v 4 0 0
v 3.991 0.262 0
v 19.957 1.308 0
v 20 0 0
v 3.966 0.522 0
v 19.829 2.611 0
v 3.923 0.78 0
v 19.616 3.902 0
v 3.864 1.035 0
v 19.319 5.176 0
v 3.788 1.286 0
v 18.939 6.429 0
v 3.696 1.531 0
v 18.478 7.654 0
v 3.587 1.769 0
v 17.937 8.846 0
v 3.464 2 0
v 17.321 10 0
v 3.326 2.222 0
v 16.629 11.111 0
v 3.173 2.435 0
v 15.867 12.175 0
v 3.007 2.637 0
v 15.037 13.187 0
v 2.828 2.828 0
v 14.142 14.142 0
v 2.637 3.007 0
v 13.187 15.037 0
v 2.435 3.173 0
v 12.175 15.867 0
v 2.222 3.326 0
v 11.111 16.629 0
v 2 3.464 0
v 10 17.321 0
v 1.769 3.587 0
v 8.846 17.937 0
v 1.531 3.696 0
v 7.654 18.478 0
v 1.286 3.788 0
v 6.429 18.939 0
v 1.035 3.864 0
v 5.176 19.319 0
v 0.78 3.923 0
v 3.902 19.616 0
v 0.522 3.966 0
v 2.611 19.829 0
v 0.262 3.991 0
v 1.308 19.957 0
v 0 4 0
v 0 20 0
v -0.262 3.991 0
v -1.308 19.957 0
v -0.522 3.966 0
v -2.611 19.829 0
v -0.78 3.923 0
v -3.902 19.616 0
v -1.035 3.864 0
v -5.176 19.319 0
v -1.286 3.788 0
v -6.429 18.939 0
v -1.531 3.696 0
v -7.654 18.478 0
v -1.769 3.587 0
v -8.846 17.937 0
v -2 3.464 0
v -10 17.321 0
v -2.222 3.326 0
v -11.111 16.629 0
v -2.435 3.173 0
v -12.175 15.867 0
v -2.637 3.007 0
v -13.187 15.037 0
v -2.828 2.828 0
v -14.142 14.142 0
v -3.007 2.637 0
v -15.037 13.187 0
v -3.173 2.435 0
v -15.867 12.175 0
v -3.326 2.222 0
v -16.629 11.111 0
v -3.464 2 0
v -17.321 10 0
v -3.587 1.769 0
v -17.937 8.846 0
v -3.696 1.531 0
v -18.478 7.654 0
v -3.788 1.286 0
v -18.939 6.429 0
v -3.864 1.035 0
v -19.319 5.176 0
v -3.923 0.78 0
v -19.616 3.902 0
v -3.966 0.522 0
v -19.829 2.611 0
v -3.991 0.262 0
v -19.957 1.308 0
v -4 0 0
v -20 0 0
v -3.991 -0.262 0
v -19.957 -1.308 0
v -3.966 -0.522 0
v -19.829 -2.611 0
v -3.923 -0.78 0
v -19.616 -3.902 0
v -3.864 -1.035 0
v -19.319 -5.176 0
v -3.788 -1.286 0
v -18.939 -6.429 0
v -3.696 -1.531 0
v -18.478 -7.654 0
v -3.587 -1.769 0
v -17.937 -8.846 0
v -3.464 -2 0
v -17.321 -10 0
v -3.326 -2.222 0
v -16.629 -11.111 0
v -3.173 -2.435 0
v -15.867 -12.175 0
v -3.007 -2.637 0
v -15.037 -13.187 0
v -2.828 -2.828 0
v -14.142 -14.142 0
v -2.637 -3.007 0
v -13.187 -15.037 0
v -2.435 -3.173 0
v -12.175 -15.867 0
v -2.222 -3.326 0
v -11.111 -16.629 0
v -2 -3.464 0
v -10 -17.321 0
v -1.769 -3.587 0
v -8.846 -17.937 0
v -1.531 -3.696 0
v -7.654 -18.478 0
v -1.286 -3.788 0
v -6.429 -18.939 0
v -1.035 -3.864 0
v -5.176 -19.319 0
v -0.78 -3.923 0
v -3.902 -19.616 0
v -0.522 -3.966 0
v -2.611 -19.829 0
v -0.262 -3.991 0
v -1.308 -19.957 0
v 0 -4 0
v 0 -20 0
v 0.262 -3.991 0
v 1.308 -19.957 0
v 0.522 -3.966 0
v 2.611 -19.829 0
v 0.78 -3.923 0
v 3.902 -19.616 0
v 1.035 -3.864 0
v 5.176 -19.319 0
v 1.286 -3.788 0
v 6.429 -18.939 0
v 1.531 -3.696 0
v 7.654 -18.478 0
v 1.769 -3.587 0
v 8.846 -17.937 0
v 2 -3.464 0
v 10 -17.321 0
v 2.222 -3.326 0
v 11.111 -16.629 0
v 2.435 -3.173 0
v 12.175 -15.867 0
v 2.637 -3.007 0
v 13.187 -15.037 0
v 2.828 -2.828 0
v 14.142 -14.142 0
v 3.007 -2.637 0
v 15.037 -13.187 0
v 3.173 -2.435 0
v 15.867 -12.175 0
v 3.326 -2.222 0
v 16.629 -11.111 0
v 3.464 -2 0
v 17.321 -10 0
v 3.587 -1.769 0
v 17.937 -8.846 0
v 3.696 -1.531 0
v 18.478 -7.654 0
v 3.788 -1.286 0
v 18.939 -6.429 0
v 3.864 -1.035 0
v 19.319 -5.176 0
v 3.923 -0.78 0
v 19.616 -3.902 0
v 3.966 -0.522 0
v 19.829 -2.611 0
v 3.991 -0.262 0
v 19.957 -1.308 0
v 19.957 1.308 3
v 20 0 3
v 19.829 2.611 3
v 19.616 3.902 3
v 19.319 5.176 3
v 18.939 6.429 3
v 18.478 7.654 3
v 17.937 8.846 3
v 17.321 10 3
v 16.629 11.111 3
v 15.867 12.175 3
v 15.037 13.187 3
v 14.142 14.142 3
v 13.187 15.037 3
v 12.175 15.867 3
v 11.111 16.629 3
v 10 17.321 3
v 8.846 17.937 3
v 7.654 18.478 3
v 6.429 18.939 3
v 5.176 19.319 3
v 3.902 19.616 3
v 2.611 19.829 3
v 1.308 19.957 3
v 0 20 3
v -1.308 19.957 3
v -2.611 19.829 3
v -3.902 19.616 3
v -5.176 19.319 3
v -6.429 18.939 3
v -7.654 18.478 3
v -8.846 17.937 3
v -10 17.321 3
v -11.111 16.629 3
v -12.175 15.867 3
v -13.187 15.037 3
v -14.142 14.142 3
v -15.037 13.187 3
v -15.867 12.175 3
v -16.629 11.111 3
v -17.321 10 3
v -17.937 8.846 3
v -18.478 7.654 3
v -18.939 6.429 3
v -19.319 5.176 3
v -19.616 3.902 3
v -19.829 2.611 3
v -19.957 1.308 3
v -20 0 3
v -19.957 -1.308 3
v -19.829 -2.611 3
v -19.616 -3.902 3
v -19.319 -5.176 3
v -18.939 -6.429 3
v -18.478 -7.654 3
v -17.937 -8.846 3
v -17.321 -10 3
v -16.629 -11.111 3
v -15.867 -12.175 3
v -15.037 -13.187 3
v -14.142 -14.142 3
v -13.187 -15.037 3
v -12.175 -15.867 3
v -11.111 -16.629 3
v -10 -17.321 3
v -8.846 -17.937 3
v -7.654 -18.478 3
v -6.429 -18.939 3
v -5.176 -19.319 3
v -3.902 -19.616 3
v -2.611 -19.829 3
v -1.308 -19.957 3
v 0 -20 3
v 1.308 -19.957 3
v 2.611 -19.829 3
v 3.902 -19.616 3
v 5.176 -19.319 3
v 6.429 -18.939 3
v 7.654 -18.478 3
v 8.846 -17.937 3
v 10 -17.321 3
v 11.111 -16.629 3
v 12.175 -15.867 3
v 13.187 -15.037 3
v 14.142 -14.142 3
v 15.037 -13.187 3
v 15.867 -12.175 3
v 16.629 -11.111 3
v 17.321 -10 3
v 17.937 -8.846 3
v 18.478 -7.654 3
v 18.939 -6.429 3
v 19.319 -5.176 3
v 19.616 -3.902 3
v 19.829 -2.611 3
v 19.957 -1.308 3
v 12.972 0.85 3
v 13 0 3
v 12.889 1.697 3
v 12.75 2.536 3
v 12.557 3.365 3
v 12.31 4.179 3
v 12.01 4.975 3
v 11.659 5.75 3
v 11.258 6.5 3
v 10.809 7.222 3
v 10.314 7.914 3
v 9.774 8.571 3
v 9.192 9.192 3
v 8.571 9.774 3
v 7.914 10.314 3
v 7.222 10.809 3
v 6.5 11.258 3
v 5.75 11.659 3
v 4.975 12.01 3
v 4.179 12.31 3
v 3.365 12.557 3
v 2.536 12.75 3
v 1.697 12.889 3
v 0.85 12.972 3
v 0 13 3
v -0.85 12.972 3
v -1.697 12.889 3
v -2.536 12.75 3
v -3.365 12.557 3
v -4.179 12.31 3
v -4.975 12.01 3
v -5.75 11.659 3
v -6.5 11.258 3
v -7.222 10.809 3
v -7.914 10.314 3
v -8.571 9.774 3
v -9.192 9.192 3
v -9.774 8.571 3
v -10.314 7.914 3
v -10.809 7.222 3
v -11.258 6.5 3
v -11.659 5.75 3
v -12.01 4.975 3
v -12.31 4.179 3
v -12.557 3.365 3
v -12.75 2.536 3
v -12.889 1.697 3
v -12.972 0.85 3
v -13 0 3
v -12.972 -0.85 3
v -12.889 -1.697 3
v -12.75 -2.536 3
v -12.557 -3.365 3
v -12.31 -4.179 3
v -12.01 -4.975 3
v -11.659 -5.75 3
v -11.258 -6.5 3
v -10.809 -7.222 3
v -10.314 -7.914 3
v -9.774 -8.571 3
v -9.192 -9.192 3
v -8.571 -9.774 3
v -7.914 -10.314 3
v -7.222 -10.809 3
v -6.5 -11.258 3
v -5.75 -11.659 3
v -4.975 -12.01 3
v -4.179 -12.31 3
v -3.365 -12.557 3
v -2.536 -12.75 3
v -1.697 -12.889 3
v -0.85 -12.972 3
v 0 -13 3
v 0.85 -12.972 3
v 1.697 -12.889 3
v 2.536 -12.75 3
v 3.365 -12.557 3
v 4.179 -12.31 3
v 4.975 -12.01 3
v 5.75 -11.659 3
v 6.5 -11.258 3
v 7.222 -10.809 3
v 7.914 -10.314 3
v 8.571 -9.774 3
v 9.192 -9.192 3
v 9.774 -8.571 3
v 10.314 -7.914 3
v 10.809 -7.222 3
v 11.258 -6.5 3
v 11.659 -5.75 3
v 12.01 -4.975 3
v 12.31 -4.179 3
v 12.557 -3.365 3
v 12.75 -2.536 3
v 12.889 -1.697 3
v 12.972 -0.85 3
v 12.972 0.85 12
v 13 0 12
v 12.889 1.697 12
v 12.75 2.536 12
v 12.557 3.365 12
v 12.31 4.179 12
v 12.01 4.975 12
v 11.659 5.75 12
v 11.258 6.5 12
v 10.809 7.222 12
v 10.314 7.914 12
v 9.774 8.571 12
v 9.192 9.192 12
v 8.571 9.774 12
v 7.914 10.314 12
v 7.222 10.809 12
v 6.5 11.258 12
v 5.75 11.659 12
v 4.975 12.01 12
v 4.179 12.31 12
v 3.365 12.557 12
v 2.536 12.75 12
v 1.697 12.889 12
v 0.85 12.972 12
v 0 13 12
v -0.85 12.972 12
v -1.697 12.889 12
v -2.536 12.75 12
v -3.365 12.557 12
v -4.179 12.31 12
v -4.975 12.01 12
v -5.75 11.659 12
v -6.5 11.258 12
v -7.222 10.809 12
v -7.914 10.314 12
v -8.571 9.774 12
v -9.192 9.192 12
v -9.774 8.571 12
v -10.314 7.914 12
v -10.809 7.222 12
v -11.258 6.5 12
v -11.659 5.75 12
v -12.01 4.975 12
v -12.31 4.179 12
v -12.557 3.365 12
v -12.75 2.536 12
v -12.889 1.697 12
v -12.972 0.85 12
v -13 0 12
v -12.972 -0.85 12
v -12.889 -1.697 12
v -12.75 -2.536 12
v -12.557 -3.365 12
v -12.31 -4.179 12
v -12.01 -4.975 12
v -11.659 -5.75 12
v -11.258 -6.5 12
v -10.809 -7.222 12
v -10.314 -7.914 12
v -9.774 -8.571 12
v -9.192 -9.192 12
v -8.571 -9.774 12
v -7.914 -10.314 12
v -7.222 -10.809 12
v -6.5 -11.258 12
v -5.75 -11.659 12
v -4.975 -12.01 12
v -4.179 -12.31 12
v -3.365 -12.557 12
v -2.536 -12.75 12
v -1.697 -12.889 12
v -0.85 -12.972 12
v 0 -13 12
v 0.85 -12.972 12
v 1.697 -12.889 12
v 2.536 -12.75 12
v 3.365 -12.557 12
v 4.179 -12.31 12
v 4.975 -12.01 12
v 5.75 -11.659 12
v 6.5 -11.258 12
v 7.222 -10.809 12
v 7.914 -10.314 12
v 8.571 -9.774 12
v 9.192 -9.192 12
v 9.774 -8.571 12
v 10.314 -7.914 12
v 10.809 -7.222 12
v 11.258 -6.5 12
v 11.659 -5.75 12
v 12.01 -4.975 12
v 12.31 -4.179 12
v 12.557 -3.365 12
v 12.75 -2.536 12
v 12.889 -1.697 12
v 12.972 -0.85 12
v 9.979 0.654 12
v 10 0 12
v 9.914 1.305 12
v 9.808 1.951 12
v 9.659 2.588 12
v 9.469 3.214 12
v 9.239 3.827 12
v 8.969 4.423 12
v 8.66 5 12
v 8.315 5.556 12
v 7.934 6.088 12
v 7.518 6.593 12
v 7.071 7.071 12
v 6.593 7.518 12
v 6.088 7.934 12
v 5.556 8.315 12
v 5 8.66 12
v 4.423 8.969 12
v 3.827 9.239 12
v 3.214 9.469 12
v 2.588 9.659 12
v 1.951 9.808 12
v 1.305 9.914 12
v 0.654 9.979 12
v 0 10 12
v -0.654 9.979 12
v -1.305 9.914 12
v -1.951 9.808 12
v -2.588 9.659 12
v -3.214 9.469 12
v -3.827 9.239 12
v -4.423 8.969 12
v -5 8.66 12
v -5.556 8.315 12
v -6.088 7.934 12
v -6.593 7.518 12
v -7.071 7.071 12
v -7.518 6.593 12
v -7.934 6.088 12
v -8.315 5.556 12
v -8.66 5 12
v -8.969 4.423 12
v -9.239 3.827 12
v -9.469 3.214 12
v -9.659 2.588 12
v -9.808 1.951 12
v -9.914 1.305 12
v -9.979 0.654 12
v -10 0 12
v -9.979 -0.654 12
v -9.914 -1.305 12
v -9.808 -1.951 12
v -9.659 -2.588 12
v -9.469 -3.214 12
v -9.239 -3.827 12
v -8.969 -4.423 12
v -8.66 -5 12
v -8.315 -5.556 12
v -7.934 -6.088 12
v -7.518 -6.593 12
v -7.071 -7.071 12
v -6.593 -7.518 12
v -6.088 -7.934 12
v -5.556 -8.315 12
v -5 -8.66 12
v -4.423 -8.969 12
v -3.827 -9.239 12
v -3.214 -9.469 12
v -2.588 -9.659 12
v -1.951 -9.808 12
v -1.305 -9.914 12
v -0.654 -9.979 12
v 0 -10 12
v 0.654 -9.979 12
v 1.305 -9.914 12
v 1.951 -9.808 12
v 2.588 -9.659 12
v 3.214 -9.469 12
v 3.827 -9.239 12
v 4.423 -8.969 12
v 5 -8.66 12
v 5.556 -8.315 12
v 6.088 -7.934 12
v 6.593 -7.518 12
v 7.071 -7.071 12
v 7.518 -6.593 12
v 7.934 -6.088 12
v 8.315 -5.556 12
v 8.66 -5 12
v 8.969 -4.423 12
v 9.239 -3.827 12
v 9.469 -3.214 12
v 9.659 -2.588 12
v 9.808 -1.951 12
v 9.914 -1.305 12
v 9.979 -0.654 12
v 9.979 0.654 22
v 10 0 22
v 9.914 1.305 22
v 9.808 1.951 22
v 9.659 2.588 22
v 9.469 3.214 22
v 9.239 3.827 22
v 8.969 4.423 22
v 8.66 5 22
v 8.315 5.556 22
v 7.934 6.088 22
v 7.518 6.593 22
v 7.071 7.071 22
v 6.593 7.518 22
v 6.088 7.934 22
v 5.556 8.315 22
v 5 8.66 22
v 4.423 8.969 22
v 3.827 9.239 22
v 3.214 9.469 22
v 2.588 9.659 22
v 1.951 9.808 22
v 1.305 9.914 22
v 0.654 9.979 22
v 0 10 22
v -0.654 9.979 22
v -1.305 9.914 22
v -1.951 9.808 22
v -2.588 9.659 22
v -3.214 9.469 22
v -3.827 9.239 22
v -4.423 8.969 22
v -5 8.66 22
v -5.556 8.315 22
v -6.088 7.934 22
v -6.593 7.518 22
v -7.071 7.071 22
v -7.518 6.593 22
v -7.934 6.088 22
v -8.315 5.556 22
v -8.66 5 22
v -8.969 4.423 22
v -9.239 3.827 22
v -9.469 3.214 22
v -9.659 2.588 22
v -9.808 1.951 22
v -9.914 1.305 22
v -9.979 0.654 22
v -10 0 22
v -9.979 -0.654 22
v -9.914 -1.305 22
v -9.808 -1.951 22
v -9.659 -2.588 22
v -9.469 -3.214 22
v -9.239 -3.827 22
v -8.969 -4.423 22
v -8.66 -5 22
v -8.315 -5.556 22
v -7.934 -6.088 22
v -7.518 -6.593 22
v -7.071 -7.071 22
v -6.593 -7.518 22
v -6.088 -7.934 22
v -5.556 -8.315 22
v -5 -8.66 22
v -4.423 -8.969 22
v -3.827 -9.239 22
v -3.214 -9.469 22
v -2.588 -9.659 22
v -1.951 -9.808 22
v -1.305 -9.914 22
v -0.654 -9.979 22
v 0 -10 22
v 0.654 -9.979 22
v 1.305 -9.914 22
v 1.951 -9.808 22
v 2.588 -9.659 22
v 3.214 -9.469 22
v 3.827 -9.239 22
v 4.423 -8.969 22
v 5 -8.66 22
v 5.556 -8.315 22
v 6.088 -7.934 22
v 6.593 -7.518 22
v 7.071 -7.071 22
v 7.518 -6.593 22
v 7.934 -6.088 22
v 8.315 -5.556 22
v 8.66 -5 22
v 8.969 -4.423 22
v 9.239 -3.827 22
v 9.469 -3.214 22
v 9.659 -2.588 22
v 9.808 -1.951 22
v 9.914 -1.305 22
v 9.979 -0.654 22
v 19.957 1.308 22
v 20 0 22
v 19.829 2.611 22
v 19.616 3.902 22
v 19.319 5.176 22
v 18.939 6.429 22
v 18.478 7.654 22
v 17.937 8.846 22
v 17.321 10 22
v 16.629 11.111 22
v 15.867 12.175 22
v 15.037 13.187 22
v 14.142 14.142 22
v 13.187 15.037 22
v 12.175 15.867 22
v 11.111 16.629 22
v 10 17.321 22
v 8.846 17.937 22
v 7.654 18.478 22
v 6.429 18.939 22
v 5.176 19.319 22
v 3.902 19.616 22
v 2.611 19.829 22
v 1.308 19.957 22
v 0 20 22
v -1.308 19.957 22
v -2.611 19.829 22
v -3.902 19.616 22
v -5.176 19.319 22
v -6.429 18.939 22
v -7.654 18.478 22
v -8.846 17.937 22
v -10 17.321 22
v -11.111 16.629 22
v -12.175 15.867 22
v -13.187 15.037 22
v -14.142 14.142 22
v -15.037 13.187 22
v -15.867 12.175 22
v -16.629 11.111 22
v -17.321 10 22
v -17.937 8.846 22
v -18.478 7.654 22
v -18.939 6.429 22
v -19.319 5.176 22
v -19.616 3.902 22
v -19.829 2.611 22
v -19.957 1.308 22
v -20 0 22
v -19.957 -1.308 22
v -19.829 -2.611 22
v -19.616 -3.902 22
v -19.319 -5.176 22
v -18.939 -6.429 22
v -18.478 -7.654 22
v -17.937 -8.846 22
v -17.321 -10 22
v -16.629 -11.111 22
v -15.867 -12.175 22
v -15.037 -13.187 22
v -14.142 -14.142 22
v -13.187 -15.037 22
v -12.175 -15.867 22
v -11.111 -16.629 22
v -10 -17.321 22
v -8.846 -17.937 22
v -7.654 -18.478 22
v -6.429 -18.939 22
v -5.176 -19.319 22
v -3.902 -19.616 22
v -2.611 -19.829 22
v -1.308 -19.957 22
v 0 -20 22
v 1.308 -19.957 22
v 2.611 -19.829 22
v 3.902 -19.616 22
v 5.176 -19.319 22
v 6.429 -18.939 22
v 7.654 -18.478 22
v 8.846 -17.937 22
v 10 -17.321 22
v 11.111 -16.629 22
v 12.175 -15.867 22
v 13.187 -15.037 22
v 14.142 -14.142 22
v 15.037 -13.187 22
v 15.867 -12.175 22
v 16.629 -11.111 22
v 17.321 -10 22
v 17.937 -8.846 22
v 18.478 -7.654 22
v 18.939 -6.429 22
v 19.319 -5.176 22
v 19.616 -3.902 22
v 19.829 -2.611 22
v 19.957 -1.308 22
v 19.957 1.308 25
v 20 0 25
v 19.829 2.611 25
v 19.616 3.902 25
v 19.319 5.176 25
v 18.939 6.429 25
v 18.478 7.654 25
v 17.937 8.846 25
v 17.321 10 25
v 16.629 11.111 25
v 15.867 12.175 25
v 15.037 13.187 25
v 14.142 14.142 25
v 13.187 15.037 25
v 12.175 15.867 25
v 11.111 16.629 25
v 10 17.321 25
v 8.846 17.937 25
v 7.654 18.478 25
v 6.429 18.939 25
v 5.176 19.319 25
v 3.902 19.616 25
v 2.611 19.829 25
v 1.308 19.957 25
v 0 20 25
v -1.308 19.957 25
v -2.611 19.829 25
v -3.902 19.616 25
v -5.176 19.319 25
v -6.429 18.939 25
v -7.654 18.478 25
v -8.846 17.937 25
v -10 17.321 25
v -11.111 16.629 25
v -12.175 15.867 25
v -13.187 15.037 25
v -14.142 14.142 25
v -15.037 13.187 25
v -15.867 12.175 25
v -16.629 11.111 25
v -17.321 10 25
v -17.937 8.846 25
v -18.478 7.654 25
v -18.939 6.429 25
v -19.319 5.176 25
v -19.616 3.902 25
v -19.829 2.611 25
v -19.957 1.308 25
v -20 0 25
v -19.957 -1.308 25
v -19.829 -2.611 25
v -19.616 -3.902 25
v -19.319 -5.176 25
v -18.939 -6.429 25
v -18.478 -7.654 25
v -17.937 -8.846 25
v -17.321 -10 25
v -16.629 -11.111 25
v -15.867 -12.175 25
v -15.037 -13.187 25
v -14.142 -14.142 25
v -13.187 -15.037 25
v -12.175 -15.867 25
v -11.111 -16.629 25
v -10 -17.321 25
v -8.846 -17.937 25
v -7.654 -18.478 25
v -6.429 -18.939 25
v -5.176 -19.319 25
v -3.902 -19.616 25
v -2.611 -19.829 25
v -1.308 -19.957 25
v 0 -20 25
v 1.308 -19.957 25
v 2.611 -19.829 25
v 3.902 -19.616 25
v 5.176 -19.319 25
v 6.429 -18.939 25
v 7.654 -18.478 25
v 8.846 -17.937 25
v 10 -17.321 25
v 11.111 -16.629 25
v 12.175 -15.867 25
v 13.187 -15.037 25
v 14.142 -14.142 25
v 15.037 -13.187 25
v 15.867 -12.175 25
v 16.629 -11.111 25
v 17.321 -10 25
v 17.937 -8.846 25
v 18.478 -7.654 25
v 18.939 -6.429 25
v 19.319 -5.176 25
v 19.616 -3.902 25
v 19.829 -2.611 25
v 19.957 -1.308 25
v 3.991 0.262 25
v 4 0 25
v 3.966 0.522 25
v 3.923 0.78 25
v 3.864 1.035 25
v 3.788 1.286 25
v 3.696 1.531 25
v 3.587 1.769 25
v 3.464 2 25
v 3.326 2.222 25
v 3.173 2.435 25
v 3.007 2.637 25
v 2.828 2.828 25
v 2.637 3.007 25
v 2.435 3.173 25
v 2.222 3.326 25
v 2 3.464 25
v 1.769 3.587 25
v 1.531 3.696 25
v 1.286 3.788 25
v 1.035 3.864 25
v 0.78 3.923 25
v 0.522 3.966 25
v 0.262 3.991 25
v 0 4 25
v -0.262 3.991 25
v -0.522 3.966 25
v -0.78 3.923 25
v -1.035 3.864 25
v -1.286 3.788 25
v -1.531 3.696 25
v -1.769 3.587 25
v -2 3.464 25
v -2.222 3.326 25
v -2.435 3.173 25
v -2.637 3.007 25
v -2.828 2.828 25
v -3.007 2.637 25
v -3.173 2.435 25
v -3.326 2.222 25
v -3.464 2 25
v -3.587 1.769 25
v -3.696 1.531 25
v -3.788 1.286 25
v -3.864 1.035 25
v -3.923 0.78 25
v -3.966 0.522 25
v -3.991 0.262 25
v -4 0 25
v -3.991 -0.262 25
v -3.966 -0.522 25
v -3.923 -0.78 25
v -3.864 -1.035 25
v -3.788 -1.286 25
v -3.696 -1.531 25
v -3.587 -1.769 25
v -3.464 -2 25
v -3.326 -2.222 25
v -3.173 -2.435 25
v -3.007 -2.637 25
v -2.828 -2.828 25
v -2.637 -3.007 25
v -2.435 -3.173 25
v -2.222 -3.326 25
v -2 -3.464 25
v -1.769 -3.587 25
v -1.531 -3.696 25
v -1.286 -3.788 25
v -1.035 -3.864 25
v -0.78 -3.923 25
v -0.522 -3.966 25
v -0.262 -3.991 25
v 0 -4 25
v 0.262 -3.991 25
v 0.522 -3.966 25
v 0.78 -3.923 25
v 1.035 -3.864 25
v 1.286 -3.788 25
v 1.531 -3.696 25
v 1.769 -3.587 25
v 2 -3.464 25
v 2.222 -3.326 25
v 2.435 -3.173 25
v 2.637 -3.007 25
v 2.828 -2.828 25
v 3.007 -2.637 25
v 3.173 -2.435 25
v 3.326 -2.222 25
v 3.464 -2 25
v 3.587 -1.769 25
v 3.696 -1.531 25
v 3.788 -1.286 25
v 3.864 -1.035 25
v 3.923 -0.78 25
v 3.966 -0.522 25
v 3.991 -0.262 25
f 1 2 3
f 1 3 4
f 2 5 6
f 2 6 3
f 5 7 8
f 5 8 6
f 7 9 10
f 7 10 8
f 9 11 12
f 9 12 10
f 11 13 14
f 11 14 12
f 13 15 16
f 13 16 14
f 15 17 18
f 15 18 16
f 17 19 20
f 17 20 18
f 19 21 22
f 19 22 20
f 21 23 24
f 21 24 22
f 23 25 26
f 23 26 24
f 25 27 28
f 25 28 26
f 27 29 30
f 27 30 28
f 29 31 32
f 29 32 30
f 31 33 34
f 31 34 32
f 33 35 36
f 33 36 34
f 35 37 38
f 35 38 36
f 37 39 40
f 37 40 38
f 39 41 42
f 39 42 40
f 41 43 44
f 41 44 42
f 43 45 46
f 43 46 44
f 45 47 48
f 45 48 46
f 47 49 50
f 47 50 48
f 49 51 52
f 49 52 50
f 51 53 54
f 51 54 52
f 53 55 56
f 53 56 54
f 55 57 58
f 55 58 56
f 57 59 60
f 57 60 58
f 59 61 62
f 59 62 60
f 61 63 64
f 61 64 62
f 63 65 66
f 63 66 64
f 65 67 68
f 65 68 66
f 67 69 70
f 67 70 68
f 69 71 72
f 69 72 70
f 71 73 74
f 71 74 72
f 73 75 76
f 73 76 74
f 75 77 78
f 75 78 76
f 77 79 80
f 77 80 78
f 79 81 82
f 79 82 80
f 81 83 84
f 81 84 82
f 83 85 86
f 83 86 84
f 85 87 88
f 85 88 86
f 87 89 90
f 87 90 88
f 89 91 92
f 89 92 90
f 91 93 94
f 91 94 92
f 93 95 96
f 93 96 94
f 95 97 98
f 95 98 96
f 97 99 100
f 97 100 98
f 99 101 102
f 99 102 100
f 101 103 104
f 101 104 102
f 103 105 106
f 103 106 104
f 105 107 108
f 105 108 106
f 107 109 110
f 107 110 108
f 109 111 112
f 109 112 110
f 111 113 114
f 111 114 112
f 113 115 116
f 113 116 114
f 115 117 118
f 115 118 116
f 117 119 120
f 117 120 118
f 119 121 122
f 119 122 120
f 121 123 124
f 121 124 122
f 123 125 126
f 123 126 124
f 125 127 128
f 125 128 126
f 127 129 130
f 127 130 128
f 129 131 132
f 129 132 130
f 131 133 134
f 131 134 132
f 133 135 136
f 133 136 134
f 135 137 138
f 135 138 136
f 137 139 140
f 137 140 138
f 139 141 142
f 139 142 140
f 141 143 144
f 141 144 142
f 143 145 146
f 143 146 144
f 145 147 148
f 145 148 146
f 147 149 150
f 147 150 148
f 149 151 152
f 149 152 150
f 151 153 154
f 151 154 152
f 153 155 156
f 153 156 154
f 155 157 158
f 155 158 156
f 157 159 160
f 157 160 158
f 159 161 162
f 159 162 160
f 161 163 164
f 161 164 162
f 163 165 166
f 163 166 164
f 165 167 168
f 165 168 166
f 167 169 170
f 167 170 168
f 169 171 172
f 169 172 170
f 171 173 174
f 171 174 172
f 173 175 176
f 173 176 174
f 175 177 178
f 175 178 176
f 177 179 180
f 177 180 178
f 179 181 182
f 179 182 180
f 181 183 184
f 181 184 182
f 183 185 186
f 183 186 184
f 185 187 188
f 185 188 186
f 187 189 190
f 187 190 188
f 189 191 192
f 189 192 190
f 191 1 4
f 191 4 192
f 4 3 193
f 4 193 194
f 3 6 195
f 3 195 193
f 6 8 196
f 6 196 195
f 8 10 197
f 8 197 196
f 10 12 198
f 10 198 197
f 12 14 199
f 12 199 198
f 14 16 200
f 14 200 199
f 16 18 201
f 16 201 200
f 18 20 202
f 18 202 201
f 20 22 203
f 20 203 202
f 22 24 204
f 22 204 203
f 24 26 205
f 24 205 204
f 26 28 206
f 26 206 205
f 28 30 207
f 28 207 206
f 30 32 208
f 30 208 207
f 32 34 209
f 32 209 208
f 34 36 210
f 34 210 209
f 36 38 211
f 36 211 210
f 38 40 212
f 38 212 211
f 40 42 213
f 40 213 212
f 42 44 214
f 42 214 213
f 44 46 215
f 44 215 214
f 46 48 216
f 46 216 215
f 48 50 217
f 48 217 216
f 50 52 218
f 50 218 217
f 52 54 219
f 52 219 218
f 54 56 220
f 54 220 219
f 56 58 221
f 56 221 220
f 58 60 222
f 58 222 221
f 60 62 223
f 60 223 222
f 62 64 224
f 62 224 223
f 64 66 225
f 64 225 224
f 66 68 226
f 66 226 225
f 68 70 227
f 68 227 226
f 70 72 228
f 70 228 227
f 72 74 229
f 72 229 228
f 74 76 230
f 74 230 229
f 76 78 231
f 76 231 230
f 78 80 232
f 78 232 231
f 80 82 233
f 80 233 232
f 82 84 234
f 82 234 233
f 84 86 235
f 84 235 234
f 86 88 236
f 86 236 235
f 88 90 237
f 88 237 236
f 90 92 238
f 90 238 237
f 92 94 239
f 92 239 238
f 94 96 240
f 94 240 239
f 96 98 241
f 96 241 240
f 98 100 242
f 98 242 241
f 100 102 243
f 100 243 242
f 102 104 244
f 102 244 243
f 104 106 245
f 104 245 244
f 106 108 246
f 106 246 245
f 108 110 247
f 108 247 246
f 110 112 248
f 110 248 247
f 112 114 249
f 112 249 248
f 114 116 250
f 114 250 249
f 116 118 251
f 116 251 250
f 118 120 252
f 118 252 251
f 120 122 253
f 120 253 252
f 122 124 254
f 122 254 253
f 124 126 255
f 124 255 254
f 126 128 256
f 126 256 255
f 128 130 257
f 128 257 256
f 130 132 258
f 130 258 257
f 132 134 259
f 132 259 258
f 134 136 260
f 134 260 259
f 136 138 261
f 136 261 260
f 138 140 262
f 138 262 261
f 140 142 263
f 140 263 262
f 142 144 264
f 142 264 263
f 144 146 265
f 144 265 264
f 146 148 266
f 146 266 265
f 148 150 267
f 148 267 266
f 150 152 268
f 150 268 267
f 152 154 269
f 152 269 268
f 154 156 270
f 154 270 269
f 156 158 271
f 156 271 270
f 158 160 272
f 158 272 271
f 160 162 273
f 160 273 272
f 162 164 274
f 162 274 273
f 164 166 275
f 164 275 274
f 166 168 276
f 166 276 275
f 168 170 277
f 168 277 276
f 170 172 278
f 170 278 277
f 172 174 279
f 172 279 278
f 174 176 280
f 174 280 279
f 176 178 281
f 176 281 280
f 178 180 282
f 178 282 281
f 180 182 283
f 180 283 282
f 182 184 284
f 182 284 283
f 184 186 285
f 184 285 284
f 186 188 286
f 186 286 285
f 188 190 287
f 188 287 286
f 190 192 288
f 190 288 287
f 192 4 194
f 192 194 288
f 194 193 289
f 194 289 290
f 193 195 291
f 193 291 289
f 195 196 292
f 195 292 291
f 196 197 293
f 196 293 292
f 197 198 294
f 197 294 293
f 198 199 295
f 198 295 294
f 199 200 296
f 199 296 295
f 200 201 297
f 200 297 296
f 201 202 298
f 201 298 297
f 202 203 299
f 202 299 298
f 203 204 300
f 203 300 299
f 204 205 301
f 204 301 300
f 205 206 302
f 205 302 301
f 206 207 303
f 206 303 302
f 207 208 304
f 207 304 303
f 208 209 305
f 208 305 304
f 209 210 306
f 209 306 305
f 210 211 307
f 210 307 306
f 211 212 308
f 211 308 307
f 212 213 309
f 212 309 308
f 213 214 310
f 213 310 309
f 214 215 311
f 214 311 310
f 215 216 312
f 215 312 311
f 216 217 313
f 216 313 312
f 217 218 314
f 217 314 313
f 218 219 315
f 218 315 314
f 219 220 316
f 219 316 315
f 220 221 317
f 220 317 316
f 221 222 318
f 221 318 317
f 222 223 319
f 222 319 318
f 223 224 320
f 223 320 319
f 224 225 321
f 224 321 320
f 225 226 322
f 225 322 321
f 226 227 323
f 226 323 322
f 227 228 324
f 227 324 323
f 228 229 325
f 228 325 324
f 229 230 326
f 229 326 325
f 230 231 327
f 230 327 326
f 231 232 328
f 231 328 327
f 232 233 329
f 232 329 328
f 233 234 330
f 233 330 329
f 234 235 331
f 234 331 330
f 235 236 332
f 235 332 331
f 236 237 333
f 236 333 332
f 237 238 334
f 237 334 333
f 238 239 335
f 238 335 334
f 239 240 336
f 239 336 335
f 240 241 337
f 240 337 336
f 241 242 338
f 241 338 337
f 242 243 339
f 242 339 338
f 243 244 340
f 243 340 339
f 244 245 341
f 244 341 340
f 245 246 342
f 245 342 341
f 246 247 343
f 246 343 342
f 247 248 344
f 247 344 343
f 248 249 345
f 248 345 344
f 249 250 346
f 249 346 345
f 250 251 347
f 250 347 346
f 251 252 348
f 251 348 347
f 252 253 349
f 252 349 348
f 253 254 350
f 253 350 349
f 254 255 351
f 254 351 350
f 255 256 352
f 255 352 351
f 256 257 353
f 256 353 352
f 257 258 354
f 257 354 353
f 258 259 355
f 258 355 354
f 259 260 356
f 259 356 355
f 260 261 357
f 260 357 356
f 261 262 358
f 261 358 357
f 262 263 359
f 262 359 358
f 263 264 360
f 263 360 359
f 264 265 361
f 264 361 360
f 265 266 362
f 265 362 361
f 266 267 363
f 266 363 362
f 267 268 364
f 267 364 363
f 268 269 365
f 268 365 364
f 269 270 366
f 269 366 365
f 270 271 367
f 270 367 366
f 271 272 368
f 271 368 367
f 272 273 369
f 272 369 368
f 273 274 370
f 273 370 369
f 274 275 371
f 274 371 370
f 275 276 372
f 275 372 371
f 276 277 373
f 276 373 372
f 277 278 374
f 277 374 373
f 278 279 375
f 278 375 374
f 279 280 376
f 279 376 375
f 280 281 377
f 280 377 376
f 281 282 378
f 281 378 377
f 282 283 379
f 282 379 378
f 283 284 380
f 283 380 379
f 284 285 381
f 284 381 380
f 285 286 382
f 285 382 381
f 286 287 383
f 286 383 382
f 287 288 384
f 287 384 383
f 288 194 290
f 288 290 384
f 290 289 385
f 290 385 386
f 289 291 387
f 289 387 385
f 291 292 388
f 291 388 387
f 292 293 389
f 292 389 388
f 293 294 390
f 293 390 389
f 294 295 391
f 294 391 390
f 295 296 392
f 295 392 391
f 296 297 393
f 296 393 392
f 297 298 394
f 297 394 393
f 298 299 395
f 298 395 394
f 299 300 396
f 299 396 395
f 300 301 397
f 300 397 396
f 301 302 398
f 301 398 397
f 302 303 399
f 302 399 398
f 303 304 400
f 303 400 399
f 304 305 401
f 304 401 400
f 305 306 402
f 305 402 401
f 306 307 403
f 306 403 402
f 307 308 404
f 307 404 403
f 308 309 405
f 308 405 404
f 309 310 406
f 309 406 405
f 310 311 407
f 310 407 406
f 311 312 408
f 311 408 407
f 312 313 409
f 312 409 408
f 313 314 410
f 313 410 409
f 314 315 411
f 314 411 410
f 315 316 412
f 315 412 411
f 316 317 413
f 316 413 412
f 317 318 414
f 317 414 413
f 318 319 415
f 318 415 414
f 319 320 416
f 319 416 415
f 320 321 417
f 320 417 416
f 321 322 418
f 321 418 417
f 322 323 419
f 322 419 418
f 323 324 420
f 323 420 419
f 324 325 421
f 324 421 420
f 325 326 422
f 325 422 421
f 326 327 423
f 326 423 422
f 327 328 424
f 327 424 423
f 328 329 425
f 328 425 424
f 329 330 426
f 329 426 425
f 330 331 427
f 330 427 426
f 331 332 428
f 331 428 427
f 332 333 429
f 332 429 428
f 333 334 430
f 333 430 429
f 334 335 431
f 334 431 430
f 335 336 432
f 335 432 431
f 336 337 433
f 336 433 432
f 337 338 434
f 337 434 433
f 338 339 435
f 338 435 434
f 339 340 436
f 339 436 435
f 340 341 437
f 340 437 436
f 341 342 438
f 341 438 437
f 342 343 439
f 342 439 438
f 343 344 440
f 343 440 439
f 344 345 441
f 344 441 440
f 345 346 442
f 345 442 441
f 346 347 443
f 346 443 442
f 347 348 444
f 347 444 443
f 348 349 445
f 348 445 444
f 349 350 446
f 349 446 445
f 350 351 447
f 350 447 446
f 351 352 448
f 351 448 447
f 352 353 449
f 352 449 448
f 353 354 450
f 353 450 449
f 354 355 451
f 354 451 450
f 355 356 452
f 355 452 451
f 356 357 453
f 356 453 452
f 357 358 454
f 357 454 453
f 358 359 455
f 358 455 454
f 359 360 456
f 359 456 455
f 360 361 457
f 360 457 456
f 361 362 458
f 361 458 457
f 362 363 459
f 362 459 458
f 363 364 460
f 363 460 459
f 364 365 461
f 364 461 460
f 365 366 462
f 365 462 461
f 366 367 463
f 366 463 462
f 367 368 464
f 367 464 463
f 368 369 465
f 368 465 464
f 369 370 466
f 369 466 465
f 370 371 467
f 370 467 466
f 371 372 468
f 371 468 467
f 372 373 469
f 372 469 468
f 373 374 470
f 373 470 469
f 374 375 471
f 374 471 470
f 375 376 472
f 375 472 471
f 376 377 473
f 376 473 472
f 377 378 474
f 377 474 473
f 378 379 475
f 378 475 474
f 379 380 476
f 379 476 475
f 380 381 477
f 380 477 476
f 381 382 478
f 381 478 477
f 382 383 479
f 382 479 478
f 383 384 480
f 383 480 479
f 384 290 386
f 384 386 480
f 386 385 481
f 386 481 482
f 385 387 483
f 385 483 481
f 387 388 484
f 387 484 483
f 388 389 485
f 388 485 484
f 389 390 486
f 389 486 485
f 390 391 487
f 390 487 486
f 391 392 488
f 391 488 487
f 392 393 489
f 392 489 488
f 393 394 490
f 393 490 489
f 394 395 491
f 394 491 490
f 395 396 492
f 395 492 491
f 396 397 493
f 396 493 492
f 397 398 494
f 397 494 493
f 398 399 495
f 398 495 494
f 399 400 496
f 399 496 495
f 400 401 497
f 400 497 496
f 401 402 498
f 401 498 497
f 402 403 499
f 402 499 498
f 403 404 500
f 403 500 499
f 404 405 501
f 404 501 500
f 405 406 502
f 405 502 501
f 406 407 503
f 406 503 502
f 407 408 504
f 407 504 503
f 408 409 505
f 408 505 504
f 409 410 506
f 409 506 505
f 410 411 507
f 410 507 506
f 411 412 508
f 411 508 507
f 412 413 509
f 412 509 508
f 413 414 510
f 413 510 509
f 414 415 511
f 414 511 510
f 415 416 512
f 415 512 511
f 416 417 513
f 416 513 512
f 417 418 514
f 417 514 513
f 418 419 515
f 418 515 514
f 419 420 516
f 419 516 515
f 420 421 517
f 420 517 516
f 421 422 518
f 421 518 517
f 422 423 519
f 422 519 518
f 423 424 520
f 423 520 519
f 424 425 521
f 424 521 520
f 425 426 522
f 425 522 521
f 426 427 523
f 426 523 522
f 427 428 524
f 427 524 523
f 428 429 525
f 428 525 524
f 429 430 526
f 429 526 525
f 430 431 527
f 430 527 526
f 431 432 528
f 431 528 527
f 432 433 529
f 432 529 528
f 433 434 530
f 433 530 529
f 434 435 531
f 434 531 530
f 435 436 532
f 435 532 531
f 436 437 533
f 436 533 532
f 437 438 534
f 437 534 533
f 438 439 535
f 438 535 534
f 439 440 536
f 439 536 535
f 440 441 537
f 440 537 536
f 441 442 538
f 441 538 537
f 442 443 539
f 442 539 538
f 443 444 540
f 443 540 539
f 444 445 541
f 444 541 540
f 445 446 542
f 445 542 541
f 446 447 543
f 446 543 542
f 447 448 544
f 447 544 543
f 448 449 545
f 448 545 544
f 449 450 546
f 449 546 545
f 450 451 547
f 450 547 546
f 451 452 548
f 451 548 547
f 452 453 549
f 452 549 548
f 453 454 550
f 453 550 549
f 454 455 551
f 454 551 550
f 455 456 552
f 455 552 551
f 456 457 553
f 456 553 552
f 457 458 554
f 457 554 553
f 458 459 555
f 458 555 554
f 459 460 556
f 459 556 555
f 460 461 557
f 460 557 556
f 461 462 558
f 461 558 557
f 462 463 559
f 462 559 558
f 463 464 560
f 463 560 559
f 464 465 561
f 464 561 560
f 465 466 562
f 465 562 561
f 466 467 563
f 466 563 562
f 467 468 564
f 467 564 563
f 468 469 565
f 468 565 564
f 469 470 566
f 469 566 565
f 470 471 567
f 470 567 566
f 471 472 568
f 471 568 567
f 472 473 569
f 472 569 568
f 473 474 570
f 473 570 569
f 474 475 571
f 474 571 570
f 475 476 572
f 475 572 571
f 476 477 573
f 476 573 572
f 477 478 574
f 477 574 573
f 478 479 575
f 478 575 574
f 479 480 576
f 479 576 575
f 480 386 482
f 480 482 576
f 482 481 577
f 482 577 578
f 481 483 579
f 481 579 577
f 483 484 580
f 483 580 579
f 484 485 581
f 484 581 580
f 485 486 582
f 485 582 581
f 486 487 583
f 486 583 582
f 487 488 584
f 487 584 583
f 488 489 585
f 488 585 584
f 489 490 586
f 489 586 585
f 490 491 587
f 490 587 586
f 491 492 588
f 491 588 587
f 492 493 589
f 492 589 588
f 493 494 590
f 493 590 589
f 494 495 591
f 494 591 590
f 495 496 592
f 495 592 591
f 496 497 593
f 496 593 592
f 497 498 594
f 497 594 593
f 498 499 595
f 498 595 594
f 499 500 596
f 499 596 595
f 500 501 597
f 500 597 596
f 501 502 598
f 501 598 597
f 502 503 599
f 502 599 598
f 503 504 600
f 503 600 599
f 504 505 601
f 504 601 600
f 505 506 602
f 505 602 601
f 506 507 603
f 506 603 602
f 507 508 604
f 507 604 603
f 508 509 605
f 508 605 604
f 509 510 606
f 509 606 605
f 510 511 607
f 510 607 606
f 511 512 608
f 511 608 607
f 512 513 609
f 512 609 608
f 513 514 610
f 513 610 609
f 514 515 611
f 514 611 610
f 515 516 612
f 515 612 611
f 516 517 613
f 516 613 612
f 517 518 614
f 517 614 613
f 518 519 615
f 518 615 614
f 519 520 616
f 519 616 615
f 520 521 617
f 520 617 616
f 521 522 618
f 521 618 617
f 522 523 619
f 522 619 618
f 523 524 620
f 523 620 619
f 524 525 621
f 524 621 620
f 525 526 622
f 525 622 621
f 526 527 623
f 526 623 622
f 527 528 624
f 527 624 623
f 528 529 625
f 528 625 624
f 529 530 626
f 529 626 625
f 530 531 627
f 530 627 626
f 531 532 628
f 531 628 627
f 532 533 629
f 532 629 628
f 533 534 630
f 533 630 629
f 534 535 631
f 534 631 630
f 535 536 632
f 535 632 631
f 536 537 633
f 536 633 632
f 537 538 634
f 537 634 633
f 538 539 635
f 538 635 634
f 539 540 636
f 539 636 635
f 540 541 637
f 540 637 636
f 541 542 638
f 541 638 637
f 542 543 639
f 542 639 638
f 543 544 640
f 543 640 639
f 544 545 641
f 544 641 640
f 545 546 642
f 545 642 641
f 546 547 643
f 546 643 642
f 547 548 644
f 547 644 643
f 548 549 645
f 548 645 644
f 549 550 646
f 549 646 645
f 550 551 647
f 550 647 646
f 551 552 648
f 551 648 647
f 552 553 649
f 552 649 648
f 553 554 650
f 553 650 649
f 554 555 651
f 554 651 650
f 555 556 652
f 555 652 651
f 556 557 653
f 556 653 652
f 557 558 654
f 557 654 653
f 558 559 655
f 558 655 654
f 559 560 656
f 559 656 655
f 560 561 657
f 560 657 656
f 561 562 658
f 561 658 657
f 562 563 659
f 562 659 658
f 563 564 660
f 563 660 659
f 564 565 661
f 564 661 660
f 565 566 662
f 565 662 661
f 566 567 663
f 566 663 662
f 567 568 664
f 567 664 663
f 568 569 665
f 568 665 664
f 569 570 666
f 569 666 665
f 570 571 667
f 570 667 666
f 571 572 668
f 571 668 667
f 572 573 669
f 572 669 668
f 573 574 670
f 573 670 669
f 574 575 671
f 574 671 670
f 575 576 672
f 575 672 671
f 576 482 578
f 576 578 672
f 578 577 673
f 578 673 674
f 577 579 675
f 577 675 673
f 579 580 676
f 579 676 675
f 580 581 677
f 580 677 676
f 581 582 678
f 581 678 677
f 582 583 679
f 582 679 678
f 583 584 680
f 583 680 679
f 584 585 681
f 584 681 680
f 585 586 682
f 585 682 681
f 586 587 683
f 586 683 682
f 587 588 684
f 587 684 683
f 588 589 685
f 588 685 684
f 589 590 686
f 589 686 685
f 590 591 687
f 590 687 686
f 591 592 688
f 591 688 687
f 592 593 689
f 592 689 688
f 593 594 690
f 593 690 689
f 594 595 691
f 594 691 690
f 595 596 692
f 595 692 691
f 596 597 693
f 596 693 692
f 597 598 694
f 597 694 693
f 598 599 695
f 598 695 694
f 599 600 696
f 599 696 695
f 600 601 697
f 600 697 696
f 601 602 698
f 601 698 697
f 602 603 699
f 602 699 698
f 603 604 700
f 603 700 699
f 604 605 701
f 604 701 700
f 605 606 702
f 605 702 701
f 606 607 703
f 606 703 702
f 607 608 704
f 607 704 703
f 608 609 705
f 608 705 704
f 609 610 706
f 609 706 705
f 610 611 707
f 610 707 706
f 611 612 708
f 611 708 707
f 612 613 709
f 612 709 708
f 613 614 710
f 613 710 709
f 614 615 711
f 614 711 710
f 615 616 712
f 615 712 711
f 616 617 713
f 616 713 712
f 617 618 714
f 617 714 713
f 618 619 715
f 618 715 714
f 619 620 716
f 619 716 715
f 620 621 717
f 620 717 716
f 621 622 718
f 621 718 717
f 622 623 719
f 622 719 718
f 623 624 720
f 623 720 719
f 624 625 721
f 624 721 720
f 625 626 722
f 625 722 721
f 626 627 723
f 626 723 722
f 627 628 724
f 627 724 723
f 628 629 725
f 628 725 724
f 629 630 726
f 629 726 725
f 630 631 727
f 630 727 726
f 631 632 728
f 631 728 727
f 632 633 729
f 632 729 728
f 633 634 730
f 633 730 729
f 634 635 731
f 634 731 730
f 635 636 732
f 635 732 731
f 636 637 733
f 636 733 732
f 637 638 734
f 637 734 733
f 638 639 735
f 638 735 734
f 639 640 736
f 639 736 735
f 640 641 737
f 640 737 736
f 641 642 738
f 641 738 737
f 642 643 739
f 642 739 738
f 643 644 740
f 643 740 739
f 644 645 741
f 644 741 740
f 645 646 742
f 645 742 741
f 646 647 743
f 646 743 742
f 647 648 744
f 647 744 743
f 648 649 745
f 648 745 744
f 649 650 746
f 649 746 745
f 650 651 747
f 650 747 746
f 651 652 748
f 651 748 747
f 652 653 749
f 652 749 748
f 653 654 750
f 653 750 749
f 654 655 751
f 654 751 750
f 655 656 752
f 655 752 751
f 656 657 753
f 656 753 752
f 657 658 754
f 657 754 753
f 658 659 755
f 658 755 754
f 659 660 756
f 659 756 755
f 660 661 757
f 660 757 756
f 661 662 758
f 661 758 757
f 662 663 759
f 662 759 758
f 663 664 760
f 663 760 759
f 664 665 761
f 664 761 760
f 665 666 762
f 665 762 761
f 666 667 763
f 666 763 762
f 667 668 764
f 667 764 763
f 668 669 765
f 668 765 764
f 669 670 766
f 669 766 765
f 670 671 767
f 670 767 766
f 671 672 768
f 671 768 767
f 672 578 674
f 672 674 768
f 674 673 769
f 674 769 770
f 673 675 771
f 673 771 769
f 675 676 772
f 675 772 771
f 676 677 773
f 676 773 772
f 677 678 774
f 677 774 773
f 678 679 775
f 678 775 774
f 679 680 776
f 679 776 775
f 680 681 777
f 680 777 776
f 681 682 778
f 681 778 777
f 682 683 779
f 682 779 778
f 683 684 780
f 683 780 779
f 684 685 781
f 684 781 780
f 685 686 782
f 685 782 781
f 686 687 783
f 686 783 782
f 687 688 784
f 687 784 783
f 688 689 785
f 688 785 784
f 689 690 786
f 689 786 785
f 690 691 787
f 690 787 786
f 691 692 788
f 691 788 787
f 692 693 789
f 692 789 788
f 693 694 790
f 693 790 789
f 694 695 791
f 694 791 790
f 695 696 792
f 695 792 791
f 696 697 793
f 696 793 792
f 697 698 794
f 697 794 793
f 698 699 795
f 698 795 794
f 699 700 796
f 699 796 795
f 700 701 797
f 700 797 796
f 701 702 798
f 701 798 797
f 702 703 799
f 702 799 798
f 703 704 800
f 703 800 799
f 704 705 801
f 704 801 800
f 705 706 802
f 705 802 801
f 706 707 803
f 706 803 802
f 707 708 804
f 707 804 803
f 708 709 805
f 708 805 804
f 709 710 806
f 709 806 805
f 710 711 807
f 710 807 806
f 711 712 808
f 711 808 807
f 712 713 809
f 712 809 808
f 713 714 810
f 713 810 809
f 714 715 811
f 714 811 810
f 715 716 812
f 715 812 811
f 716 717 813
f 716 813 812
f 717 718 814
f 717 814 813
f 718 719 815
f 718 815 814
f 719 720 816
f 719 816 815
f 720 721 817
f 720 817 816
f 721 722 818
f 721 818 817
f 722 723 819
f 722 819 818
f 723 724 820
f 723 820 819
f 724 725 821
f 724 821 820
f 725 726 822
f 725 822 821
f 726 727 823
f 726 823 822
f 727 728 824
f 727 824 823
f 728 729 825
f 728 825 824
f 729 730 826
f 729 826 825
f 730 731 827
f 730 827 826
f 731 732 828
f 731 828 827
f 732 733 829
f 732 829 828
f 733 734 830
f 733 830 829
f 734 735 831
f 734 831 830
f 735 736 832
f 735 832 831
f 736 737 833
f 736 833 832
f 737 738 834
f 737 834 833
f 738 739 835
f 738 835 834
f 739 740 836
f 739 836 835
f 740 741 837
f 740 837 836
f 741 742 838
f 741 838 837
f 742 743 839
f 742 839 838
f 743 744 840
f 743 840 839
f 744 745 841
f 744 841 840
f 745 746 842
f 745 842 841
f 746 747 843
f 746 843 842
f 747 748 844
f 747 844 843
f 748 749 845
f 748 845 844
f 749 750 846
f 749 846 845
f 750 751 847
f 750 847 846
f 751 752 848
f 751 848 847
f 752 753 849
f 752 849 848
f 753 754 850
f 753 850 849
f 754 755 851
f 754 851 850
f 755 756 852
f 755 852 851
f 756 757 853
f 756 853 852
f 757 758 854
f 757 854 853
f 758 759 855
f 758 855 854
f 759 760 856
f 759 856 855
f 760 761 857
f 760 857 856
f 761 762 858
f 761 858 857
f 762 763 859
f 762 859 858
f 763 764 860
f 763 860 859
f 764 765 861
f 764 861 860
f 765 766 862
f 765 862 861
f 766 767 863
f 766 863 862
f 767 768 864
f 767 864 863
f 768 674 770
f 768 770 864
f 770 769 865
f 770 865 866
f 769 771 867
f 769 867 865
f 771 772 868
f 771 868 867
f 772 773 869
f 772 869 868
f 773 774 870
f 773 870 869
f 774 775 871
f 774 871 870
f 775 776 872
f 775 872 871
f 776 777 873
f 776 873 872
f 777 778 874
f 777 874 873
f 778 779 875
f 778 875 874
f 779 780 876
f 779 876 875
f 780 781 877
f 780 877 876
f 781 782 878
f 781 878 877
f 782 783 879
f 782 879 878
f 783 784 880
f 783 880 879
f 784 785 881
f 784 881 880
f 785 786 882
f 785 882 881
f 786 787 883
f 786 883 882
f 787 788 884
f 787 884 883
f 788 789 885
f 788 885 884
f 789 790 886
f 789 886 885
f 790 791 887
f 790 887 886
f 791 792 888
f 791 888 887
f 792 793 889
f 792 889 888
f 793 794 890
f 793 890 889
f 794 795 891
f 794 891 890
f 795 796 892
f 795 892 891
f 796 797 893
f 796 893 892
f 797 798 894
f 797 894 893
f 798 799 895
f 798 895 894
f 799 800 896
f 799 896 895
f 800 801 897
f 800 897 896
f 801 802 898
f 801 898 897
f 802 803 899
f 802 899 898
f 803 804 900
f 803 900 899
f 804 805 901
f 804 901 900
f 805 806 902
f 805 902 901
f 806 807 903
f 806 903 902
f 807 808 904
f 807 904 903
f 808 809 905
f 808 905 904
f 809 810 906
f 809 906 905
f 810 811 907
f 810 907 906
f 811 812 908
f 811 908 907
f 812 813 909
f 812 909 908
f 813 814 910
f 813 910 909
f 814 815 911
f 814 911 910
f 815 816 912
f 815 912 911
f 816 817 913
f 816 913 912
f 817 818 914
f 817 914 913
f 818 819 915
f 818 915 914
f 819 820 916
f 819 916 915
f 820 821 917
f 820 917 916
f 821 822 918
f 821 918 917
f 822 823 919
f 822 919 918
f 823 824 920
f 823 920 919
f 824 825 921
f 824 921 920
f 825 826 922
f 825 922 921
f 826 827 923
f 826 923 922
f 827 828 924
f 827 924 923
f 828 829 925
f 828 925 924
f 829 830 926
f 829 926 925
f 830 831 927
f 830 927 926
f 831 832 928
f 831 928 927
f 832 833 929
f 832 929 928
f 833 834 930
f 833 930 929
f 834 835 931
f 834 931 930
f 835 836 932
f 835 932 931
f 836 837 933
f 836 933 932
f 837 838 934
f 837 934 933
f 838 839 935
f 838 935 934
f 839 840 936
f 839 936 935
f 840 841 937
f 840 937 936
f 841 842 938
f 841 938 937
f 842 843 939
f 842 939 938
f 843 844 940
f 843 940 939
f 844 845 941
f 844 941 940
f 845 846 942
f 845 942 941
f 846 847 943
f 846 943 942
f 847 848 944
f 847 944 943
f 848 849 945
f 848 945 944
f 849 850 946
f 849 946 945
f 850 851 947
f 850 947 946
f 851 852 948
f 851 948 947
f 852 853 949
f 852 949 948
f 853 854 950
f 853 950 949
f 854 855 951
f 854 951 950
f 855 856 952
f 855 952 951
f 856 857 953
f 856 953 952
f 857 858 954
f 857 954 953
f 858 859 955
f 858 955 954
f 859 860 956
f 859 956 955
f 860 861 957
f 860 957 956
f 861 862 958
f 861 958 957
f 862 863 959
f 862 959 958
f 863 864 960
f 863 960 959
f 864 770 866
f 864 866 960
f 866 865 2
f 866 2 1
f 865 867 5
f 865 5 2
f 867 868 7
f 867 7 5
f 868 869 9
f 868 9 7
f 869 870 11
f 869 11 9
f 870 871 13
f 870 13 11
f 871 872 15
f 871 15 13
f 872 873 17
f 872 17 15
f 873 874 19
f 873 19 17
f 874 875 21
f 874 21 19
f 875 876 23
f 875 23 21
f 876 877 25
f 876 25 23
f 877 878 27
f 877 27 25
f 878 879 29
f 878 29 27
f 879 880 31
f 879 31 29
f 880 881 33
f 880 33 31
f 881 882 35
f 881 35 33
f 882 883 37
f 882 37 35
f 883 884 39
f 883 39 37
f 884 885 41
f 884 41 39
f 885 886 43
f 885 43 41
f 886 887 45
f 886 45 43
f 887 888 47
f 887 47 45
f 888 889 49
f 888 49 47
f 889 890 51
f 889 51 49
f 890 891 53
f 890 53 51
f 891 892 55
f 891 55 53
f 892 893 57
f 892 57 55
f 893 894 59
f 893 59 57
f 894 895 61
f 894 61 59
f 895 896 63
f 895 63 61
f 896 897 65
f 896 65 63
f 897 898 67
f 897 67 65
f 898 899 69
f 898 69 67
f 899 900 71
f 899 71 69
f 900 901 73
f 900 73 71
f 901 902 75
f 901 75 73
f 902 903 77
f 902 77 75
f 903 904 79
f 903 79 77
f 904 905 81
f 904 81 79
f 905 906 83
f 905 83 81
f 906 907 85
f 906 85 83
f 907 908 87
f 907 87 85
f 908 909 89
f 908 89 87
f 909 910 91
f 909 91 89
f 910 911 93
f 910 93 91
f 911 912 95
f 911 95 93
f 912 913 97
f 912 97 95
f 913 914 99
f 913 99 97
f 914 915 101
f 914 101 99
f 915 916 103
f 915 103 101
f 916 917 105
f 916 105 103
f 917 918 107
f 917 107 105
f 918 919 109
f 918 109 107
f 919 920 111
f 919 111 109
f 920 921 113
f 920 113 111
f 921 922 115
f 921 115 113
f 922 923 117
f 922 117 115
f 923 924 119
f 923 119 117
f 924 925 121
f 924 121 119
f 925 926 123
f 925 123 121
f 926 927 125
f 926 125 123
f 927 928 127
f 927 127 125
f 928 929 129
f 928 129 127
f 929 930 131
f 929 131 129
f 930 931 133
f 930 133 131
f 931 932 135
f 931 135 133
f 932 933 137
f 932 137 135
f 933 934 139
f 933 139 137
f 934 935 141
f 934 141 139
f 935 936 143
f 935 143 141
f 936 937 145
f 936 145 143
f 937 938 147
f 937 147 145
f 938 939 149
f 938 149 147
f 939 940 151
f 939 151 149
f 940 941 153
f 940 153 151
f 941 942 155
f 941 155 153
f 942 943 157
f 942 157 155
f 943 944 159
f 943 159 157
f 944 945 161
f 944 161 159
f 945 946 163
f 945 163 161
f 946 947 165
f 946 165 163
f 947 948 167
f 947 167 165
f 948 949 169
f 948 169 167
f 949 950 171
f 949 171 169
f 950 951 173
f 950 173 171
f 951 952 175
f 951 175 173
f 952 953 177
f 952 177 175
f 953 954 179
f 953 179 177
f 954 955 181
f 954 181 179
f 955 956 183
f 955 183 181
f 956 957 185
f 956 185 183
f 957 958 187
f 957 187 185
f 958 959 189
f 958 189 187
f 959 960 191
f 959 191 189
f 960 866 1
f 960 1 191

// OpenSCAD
// Original MechIntel educational model. CC0-1.0. Units: mm.
// Not a standardized or load-rated component.
$fn=96;
// Section points: [radius, height], mm. Edit to change the profile.
section=[[4, 0], [20, 0], [20, 3], [13, 3], [13, 12], [10, 12], [10, 22], [20, 22], [20, 25], [4, 25]];
rotate_extrude($fn=96) polygon(points=section);
